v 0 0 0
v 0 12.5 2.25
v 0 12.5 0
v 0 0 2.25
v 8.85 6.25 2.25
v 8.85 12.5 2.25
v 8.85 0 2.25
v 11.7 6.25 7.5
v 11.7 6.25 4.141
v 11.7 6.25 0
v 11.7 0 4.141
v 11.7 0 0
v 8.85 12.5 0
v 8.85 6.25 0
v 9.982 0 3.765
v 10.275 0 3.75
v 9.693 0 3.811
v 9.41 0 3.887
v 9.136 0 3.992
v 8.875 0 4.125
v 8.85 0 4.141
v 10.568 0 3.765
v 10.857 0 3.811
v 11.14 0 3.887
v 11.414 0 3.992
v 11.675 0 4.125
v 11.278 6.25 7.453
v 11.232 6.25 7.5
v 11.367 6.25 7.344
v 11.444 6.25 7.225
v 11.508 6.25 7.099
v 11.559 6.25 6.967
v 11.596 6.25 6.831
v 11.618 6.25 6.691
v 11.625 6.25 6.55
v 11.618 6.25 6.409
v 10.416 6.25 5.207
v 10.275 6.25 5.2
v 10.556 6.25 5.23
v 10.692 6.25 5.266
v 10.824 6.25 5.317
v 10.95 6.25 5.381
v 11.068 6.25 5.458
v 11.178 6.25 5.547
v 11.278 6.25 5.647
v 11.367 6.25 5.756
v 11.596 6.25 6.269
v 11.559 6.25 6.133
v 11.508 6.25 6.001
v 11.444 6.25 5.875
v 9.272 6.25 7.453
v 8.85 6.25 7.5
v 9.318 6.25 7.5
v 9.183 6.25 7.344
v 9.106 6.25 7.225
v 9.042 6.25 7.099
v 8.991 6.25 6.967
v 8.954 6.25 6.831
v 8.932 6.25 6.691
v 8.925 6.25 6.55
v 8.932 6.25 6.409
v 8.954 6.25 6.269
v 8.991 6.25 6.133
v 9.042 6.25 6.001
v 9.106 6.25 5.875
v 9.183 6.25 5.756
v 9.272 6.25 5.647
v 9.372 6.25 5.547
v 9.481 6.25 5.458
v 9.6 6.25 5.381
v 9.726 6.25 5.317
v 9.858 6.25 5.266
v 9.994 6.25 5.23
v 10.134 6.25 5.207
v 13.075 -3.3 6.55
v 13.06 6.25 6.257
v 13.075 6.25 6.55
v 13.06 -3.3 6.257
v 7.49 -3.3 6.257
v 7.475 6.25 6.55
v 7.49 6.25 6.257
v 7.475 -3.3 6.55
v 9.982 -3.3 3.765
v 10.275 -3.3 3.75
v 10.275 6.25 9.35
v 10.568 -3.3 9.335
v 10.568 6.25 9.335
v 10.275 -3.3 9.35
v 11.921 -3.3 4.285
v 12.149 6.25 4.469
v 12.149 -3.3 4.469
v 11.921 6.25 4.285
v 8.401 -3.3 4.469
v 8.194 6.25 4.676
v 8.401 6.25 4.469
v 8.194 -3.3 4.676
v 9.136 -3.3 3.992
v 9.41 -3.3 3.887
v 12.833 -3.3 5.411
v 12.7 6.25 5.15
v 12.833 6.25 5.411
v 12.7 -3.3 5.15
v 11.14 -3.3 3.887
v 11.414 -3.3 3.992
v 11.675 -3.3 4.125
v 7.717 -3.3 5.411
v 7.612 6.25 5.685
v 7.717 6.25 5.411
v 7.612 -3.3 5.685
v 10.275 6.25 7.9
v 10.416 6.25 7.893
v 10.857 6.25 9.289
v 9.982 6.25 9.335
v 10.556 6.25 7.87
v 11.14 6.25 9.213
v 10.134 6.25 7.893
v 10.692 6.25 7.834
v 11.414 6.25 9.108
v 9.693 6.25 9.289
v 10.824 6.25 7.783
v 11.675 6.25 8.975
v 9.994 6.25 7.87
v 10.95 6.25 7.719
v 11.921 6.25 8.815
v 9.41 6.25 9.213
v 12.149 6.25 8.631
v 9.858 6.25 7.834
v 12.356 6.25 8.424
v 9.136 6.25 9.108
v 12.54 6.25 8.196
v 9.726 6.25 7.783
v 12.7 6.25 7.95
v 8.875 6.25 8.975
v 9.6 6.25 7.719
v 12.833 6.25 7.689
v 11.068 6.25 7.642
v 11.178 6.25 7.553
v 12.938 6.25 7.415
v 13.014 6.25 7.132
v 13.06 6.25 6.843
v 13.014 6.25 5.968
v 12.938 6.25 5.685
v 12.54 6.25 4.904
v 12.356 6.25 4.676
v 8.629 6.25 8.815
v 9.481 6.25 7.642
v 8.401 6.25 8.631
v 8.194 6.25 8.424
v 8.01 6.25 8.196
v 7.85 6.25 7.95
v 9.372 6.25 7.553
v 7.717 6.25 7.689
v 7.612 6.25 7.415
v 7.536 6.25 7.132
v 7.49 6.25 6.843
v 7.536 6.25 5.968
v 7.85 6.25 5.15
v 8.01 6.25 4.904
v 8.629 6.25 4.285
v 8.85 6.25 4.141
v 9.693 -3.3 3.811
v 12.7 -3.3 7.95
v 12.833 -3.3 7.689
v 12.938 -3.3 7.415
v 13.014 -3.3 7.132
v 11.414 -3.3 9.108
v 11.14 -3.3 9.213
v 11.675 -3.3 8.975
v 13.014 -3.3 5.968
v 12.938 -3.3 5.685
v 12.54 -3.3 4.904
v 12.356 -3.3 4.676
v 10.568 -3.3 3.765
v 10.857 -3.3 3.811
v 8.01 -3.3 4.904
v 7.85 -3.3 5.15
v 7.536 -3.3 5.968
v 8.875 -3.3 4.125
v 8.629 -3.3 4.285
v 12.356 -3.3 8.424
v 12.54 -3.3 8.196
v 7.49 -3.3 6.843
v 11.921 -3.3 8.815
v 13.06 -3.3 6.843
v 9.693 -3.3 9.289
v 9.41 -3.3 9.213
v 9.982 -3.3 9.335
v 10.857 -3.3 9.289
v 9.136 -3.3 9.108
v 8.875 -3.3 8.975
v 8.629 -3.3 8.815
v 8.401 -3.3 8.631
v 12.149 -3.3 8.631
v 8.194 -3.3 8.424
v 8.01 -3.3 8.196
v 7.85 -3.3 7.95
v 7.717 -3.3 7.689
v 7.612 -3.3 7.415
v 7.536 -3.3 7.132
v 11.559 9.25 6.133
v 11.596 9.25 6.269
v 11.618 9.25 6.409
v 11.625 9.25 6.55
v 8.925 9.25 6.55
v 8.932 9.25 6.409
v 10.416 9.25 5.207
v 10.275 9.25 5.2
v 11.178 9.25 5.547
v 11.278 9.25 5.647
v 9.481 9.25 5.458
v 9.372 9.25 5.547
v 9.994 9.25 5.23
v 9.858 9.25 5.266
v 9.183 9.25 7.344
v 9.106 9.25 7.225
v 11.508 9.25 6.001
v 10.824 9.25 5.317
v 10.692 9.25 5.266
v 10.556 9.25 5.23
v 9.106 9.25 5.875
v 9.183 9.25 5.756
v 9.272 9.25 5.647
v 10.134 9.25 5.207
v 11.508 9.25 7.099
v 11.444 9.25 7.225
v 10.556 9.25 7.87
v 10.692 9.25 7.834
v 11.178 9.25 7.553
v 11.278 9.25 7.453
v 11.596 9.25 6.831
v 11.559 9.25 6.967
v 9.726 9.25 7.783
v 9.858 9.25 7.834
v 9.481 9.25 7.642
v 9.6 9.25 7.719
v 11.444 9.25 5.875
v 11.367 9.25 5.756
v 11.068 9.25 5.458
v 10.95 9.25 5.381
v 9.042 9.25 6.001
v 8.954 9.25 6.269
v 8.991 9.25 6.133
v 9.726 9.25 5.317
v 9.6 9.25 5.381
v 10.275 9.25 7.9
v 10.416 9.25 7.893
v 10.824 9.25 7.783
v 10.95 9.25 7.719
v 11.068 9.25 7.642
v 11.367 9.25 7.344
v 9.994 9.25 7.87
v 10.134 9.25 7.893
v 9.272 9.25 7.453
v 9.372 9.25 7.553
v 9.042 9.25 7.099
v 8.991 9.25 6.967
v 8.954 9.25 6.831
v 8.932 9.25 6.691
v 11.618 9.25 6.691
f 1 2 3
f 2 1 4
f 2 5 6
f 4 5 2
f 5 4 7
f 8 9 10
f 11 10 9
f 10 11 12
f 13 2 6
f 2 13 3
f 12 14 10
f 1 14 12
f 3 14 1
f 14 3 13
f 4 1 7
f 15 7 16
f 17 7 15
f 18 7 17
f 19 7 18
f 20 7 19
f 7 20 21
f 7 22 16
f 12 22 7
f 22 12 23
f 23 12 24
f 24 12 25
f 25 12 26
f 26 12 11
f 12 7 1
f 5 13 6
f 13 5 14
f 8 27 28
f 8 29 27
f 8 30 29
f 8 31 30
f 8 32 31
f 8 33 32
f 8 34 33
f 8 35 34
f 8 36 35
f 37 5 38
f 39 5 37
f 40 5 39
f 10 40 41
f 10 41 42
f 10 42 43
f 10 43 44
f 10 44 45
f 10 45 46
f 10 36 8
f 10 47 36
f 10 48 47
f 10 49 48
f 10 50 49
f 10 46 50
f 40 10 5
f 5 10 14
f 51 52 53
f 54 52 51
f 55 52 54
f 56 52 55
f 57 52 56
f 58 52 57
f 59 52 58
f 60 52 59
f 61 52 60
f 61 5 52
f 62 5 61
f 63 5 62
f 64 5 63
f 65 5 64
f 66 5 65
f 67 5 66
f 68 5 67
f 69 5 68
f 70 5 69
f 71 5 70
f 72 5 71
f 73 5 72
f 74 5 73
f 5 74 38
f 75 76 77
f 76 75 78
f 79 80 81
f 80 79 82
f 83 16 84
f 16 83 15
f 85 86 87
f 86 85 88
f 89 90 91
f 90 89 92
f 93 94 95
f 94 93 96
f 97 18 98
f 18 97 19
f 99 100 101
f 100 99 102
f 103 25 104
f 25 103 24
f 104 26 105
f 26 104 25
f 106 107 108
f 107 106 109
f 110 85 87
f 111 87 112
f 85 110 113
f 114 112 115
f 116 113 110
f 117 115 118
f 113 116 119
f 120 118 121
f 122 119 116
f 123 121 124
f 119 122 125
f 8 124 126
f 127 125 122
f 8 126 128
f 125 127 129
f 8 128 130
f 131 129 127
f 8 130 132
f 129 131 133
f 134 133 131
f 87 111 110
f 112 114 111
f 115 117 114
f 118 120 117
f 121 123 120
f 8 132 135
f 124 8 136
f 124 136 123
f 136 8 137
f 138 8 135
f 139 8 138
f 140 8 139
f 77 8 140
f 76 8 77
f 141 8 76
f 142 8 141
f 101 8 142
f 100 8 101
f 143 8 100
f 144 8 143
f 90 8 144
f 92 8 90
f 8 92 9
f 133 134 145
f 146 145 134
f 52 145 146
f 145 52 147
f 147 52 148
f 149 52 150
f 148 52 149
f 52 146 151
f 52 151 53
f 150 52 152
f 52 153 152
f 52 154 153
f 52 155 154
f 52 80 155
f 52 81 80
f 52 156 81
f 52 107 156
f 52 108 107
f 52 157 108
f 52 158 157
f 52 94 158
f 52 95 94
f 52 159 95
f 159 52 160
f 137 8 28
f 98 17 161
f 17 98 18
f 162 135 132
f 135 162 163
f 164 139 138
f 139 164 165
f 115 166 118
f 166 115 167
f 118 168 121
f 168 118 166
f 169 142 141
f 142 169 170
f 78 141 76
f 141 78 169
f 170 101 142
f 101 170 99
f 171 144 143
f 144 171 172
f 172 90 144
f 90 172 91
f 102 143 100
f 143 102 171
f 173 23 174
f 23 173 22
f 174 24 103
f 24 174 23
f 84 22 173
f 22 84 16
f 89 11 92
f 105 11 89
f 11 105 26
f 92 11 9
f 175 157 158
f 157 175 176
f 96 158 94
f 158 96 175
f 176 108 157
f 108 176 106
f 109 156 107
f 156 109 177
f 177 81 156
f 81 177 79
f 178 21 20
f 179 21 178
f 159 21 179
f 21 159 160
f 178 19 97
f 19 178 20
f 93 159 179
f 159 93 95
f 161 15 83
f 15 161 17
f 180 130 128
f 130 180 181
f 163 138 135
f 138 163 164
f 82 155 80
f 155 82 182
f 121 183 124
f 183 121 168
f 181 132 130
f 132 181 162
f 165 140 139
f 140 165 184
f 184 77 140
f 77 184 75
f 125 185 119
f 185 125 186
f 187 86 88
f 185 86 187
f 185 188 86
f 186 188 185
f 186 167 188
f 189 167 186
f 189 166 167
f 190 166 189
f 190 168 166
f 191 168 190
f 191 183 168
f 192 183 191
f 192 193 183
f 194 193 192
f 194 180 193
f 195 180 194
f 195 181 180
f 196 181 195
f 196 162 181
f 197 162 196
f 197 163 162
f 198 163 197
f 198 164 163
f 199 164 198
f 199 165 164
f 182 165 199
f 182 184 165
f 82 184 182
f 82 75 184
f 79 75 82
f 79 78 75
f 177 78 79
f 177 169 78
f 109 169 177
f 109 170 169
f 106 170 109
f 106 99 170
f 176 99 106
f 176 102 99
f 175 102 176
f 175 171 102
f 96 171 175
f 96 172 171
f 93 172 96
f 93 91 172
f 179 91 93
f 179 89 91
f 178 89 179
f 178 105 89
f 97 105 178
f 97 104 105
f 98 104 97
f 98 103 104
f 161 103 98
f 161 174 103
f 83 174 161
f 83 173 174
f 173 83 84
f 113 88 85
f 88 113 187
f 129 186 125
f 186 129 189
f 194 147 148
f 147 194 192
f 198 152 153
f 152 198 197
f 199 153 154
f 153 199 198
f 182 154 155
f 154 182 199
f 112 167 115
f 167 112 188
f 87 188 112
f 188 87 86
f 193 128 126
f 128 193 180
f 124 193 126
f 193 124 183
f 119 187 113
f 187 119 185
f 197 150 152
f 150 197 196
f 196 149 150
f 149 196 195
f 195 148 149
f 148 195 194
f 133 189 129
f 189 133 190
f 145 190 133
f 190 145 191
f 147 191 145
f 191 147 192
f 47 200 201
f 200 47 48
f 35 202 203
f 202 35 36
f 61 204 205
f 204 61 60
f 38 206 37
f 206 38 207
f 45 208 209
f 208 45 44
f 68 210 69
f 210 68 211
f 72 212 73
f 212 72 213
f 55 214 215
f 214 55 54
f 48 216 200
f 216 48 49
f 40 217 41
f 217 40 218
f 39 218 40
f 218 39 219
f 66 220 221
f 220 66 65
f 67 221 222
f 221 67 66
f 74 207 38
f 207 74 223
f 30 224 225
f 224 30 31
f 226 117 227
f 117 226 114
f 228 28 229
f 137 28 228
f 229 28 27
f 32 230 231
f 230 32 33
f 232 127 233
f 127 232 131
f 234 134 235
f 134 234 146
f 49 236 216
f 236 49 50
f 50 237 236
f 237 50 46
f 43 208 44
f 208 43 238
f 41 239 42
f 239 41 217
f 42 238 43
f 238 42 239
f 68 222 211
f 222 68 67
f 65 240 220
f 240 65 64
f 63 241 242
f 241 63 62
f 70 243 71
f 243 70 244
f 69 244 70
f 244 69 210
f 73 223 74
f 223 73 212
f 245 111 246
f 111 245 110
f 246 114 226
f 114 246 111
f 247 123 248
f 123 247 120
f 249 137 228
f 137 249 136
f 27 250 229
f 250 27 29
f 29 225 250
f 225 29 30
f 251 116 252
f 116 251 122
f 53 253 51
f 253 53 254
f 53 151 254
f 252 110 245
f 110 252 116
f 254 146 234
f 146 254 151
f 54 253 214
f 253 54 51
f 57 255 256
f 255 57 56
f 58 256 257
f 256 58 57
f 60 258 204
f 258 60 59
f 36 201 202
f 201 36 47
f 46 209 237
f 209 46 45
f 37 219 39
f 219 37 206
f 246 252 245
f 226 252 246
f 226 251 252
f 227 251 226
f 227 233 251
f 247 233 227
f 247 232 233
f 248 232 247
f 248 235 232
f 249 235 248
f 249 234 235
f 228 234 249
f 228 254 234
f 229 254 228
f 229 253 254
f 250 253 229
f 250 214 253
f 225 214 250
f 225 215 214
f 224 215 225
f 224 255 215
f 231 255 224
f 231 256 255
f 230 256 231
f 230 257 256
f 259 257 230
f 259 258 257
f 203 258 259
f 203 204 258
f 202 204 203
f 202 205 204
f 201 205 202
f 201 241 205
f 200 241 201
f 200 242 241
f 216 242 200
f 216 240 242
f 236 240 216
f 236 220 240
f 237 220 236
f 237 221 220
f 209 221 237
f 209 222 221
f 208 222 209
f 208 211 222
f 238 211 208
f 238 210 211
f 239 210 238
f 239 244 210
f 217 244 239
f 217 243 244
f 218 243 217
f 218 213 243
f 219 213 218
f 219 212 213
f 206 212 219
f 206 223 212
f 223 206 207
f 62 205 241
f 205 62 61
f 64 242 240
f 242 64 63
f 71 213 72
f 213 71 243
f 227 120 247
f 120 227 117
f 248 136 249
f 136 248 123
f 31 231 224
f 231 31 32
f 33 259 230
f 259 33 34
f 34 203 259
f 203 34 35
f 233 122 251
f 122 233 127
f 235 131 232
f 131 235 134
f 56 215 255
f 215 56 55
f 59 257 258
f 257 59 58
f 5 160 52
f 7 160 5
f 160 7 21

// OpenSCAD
/* Card storage box lid
 *
 * We have been storing family recipes in this card storage box, just to find
 * that the back lid broke off and was lost.
 *
 * This is a replacement for the (if you look at it from the lid side) left lid 
* piece. If you need the right one you can mirror it.
 *
 * Author: @lluismh
 *
 * This work is licensed under a Creative Commons Attribution-ShareAlike 4.0
 * International License.
 */

base_width = 11.70;
base_length = 12.50;
base_thickness = 2.25;

base_cut_width = 2.85;
base_cut_length = base_length / 2;

base_extension_thickness = 3.75;

cylinder_radius = 2.80;
cylinder_length = 9.55;

pin_radius = 1.35;
pin_length = 3;

$fn = 60;

union() {
    difference() {
       cube([base_width, base_length, base_thickness]);

        translate([base_width - base_cut_width, base_length - base_cut_length, 0]) {
            cube([base_cut_width, base_cut_length, base_thickness]);
        }
    }

    translate([base_width - base_cut_width, 0, 0]) {
        cube([base_cut_width, base_cut_length, base_extension_thickness * 2]);

    }

    translate([base_width - (base_cut_width / 2), -cylinder_length + base_cut_length, base_extension_thickness + cylinder_radius]) {
        rotate(a = 90, v = [-1, 0, 0]) {
            cylinder(r = cylinder_radius, h = cylinder_length);
            cylinder(r = pin_radius, h = pin_length + cylinder_length);
        }

    }

}
